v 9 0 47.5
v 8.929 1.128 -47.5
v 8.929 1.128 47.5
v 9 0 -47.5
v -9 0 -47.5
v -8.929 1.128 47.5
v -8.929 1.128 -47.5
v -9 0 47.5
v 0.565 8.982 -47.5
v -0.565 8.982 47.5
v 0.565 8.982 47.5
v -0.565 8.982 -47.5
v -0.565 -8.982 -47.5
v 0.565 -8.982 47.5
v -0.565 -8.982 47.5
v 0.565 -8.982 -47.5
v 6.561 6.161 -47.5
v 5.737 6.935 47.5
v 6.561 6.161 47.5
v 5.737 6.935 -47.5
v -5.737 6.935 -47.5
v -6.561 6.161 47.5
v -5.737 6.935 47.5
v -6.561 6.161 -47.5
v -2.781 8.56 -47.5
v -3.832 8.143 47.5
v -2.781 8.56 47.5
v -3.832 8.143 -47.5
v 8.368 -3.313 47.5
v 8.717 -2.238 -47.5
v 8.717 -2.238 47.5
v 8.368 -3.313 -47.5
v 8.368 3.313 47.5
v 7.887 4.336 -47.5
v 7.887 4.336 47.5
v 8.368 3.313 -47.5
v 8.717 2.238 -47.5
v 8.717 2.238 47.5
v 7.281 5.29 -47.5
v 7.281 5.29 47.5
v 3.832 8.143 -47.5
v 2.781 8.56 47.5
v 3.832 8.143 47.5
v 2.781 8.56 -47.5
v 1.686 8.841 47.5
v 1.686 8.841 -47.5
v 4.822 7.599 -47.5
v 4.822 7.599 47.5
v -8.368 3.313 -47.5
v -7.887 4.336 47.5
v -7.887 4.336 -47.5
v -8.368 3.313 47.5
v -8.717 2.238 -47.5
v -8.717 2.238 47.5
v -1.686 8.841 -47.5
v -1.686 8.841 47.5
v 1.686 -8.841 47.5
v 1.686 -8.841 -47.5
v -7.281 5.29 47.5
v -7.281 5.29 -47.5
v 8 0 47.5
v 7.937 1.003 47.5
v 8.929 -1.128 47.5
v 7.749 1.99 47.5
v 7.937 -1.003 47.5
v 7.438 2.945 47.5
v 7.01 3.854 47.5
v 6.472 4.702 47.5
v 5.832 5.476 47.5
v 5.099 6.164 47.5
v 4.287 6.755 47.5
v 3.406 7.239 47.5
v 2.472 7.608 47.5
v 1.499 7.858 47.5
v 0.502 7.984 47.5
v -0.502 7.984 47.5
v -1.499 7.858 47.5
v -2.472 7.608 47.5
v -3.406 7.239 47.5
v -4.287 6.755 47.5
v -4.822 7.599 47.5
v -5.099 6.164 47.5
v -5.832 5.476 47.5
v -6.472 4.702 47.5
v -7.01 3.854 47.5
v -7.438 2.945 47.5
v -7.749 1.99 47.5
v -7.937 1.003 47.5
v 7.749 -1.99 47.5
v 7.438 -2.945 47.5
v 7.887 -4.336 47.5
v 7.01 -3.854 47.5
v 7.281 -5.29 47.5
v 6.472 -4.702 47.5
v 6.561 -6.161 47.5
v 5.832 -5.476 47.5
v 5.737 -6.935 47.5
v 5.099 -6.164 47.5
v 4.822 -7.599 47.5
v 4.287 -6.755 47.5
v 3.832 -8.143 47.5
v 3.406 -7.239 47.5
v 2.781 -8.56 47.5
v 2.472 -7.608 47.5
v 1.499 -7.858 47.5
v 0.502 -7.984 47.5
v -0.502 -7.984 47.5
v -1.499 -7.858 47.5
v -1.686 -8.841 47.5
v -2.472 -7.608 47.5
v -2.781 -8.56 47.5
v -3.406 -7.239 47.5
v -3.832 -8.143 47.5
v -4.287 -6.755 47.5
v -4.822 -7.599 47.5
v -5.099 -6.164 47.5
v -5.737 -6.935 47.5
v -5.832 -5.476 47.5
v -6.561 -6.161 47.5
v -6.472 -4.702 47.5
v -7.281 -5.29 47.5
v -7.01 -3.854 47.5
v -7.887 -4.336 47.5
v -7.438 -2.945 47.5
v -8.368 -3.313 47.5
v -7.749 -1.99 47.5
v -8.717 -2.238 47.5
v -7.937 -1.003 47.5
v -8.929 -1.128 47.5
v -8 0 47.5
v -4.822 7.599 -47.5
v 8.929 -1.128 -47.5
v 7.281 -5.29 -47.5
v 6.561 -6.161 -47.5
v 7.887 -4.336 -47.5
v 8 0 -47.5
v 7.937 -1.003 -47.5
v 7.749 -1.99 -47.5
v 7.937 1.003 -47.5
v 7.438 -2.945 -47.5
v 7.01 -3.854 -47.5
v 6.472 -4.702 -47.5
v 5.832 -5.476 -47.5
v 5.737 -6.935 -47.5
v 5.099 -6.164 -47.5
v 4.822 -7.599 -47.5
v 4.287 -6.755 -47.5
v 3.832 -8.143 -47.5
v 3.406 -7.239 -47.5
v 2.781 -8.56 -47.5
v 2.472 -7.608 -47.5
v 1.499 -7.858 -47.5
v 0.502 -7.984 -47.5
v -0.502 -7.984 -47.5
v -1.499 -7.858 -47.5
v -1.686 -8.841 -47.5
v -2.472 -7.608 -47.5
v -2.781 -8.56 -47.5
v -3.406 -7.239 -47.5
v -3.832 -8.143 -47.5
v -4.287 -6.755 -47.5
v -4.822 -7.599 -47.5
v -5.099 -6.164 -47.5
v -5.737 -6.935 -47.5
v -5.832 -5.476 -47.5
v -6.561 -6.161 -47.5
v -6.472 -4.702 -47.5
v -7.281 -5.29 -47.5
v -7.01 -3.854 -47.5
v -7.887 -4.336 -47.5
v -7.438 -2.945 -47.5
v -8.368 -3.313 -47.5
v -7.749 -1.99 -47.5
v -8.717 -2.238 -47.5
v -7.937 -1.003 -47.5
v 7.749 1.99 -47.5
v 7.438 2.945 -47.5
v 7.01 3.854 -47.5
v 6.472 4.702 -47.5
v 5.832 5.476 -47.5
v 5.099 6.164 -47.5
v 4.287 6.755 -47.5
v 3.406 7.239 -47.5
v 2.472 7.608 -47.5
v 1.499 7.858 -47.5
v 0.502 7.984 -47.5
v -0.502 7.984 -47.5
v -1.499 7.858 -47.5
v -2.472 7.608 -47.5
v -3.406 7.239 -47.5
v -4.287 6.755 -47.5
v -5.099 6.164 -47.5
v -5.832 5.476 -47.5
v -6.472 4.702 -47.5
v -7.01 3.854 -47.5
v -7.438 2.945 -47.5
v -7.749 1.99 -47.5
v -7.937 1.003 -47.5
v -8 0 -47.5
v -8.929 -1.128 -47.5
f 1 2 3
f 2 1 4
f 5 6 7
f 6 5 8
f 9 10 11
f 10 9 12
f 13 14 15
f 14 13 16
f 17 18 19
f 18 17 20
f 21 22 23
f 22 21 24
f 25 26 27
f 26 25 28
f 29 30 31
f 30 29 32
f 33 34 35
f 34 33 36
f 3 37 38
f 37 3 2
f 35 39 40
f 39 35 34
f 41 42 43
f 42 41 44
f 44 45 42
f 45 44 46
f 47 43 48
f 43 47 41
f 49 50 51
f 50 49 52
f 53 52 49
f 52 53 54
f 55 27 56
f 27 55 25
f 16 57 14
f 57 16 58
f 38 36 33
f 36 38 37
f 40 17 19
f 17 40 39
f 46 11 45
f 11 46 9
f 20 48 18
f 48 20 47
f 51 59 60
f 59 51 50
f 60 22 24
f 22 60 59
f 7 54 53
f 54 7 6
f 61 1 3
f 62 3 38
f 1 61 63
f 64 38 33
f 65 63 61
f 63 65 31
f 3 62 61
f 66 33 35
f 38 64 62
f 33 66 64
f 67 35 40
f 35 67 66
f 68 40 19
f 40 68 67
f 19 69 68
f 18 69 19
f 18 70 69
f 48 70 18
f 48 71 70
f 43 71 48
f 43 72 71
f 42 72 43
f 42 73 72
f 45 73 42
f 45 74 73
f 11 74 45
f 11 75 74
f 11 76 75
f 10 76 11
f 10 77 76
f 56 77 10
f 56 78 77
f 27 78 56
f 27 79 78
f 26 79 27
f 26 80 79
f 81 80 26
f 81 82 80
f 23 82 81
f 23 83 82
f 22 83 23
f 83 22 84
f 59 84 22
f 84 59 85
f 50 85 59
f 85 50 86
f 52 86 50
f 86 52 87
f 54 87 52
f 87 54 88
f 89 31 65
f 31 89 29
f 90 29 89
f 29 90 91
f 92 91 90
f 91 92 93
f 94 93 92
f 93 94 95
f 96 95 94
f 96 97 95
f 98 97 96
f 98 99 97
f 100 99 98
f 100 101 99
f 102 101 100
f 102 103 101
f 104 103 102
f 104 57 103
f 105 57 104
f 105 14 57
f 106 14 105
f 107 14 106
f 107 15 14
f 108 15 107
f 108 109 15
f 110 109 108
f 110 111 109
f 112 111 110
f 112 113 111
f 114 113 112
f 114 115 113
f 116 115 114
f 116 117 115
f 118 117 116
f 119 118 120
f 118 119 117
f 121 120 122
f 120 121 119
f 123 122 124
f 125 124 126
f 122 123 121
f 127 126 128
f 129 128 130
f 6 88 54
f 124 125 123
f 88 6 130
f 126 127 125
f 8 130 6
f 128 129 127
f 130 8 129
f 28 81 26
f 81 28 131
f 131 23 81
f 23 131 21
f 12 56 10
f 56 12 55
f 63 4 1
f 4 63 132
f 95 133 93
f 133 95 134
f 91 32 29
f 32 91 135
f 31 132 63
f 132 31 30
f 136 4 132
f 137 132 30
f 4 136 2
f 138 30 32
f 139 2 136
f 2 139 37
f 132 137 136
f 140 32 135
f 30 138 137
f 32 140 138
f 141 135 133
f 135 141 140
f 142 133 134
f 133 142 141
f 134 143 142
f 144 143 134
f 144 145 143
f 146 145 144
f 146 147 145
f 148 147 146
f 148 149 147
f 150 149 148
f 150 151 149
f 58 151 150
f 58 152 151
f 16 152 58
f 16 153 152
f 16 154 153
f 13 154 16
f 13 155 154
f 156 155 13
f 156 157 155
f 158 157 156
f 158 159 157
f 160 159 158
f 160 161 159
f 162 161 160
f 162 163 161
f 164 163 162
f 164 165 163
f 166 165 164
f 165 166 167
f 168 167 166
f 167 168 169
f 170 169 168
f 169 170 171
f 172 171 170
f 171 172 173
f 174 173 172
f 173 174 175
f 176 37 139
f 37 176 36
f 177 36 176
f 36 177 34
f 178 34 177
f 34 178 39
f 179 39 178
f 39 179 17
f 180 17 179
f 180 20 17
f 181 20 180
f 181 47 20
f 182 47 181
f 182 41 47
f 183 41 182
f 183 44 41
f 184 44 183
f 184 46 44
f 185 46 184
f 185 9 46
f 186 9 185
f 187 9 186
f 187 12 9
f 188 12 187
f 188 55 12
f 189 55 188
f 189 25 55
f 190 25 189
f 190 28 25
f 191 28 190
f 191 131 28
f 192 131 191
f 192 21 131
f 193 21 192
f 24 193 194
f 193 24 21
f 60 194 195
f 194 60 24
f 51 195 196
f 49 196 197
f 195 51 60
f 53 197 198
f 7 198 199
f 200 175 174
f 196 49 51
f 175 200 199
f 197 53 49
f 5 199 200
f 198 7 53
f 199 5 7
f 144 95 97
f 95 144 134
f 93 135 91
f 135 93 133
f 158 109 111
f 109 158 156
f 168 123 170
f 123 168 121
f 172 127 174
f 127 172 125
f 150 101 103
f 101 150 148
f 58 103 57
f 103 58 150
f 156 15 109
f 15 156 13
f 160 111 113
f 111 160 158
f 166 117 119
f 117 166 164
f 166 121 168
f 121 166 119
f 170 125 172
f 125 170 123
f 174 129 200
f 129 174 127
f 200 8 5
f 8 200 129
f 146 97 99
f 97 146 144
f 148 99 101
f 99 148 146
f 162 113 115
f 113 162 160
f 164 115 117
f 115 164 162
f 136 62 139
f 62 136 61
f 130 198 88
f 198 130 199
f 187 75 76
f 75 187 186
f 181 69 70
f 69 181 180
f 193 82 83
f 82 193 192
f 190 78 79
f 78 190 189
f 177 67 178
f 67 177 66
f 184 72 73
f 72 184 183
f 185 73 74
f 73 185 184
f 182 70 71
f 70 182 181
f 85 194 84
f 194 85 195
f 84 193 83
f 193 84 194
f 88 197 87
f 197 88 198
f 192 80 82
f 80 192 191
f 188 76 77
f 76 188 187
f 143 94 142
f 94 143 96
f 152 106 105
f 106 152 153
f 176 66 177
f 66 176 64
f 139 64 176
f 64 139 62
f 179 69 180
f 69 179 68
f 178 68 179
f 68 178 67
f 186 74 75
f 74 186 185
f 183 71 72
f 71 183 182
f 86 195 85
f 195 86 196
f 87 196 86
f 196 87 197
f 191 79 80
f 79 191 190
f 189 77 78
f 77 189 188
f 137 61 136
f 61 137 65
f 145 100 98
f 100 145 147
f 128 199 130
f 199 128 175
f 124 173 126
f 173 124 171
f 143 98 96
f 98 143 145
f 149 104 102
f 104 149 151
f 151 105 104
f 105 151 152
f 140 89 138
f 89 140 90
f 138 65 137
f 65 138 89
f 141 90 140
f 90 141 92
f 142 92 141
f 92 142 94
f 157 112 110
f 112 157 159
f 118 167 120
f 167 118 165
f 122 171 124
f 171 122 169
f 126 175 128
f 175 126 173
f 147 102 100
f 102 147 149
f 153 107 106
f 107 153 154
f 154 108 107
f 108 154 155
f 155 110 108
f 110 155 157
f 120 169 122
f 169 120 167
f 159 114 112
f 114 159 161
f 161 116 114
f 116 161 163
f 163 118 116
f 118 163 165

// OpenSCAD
$fn = 50;


difference() {
	union() {
		translate(v = [0, 0, -47.5000000000]) {
			cylinder(h = 95, r = 9.0000000000);
		}
	}
	union() {
		translate(v = [0, 0, -100.0000000000]) {
			cylinder(h = 200, r = 8);
		}
	}
}
